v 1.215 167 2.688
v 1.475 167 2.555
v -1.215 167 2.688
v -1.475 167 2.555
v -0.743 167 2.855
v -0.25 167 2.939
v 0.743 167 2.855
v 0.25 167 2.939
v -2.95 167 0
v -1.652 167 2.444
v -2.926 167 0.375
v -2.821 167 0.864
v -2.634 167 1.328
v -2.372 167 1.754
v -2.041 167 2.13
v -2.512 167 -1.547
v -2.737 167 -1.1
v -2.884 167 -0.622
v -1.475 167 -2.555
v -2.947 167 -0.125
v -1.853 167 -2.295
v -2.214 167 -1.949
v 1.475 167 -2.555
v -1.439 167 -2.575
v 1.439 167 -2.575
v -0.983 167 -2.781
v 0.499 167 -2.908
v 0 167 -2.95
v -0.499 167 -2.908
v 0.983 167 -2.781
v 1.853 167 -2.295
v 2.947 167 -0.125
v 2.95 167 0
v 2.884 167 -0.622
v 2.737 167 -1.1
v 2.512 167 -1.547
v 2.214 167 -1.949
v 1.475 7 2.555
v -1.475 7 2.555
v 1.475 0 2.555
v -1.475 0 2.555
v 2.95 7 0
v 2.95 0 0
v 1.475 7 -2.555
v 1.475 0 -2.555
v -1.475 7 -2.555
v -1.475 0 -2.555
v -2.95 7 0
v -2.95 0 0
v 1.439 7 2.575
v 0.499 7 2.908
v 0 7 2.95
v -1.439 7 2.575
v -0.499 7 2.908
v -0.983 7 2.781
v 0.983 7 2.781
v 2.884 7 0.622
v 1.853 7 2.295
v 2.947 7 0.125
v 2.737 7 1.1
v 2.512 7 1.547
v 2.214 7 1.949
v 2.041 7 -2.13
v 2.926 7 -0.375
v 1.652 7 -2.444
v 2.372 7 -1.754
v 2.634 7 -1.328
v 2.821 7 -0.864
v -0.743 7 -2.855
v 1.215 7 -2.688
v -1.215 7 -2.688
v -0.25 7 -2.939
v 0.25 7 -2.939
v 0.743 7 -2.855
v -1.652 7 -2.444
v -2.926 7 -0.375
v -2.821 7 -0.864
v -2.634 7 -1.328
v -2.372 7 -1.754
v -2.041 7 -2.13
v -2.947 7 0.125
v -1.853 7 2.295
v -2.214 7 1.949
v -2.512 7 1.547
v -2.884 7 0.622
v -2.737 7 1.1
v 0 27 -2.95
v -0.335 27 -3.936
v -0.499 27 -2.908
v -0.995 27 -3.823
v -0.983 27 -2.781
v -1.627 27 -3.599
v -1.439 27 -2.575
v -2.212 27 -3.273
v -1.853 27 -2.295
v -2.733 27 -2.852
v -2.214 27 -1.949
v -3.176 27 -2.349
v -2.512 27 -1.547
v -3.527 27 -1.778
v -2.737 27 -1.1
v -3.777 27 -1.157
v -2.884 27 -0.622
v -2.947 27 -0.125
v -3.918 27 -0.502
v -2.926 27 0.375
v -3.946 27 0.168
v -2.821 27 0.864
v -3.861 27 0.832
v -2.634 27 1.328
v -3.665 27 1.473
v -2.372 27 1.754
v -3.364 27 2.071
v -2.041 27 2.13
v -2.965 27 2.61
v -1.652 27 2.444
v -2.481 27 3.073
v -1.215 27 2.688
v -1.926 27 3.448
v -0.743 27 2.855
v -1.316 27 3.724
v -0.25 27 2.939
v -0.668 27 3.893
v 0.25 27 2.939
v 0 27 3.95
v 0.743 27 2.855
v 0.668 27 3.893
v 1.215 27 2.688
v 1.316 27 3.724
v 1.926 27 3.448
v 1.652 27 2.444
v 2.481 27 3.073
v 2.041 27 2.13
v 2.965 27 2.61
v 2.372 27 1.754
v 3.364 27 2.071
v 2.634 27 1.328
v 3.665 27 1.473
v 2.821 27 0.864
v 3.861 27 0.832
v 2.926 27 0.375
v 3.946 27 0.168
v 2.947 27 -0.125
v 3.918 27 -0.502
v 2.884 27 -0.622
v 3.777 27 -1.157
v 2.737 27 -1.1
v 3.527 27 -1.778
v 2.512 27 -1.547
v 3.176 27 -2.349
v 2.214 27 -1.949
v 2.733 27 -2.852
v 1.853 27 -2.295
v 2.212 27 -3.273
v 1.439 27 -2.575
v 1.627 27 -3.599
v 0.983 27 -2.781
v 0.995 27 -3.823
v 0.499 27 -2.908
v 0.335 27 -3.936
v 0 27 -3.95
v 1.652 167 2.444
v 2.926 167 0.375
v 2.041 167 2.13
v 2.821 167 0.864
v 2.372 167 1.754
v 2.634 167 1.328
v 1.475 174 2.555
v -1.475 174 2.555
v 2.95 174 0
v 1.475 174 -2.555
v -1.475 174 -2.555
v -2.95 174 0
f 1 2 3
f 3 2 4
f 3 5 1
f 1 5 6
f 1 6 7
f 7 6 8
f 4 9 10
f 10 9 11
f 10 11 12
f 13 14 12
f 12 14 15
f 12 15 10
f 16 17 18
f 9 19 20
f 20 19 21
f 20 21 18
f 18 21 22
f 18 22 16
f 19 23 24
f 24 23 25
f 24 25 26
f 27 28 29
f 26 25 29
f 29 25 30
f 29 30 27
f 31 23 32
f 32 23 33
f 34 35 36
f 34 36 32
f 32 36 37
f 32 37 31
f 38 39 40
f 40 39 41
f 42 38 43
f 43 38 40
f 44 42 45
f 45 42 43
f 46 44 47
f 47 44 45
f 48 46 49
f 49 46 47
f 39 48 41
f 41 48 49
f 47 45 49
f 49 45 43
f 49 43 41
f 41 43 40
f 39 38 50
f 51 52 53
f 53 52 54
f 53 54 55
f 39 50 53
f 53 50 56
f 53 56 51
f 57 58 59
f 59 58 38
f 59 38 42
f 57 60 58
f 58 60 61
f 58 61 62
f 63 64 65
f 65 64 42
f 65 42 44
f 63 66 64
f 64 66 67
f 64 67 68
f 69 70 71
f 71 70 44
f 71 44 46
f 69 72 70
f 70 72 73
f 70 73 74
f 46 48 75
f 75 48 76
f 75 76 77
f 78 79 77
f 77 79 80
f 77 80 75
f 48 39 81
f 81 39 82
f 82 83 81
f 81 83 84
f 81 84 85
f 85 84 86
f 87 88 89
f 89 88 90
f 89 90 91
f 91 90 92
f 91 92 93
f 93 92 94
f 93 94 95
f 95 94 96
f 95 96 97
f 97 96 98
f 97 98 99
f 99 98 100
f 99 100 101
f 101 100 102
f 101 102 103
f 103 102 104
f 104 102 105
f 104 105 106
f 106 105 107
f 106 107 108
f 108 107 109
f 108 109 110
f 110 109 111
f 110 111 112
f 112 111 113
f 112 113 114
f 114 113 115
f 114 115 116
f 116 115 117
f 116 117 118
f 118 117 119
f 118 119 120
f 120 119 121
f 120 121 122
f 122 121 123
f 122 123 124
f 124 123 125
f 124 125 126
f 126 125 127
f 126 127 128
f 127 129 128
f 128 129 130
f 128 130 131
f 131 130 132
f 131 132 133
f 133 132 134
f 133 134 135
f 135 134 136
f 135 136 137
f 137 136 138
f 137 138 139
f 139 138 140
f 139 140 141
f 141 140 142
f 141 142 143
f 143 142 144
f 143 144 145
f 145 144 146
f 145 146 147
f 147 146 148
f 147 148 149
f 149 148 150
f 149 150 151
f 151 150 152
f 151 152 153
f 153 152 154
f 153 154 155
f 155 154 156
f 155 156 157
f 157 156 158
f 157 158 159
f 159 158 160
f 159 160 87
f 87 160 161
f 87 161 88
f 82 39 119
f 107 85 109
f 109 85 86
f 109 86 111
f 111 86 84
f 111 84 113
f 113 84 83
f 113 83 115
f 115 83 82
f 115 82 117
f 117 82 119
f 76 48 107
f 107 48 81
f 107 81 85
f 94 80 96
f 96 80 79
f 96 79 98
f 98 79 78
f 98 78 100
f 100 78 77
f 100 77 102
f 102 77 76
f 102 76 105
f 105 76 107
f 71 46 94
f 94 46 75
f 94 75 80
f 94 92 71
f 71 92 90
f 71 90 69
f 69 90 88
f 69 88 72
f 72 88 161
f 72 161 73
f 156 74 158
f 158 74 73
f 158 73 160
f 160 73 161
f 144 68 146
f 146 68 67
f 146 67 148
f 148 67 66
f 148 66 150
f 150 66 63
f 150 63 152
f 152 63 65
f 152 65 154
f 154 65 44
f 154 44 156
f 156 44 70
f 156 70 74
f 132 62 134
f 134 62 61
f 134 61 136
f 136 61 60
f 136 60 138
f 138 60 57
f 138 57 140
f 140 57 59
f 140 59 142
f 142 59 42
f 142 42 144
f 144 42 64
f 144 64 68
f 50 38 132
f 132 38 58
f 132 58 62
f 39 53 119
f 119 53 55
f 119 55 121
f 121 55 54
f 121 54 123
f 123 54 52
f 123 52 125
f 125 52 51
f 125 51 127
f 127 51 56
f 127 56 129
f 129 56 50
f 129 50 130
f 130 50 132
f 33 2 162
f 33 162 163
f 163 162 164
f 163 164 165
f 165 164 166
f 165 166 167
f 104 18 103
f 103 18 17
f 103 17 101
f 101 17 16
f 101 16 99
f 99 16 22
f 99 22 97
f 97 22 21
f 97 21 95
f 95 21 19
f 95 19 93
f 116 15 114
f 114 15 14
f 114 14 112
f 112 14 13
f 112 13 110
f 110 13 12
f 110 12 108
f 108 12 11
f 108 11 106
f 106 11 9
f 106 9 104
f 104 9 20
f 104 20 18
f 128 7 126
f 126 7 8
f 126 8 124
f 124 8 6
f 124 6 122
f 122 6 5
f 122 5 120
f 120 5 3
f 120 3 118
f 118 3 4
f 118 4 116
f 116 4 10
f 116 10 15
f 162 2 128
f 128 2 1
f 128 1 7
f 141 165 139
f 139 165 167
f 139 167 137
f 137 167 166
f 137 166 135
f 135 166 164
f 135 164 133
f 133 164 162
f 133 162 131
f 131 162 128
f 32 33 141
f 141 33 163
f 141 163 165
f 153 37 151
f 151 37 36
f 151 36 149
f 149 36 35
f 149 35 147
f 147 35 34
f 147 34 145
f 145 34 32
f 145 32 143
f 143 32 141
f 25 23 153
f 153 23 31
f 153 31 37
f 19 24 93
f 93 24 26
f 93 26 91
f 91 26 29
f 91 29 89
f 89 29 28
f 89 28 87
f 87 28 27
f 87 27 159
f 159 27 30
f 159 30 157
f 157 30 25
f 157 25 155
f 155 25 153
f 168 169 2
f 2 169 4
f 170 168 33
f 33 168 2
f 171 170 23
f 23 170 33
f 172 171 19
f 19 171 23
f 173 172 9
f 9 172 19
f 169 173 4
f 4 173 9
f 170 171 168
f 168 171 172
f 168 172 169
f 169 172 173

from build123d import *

# Parameters (mm, degrees)
BOSS_EXTRUDE1_DEPTH = 7
SKETCH2_R           = 2.95
BOSS_EXTRUDE2_DEPTH = 160
SKETCH5_R           = 2.95
SKETCH4_R           = 3.95
BOSS_EXTRUDE3_DEPTH = 7


with BuildPart() as part:
    # Sketch1 → Boss-Extrude1 (new body)
    with BuildSketch(Plane(origin=(0, 0, 0), x_dir=(1, 0, 0), z_dir=(0, 1, 0))):
        Polygon((1.475, -2.554774941), (2.95, 0), (1.475, 2.554774941), (-1.475, 2.554774941), (-2.95, 0), (-1.475, -2.554774941), align=None)
    extrude(amount=BOSS_EXTRUDE1_DEPTH)

    # Sketch2 → Boss-Extrude2 (add)
    with BuildSketch(Plane(origin=(0, 7, 0), x_dir=(1, 0, 0), z_dir=(0, 1, 0))):
        with Locations(Location((0, 0, 0), (0, 0, 60))):
            Circle(SKETCH2_R)
    extrude(amount=BOSS_EXTRUDE2_DEPTH)

    # Sketch5 → Loft1 section 0
    with BuildSketch(Plane.XZ.offset(-7)):
        Circle(SKETCH5_R)
    # Sketch4 → Loft1 section 1
    with BuildSketch(Plane(origin=(0, 27, 0), x_dir=(-1, 0, 0), z_dir=(0, -1, 0))):
        Circle(SKETCH4_R)
    loft()

    # Sketch6 → Boss-Extrude3 (add)
    with BuildSketch(Plane(origin=(0, 167, 0), x_dir=(1, 0, 0), z_dir=(0, 1, 0))):
        Polygon((1.475, -2.554774941), (2.95, 0), (1.475, 2.554774941), (-1.475, 2.554774941), (-2.95, 0), (-1.475, -2.554774941), align=None)
    extrude(amount=BOSS_EXTRUDE3_DEPTH)


solid = part.part
